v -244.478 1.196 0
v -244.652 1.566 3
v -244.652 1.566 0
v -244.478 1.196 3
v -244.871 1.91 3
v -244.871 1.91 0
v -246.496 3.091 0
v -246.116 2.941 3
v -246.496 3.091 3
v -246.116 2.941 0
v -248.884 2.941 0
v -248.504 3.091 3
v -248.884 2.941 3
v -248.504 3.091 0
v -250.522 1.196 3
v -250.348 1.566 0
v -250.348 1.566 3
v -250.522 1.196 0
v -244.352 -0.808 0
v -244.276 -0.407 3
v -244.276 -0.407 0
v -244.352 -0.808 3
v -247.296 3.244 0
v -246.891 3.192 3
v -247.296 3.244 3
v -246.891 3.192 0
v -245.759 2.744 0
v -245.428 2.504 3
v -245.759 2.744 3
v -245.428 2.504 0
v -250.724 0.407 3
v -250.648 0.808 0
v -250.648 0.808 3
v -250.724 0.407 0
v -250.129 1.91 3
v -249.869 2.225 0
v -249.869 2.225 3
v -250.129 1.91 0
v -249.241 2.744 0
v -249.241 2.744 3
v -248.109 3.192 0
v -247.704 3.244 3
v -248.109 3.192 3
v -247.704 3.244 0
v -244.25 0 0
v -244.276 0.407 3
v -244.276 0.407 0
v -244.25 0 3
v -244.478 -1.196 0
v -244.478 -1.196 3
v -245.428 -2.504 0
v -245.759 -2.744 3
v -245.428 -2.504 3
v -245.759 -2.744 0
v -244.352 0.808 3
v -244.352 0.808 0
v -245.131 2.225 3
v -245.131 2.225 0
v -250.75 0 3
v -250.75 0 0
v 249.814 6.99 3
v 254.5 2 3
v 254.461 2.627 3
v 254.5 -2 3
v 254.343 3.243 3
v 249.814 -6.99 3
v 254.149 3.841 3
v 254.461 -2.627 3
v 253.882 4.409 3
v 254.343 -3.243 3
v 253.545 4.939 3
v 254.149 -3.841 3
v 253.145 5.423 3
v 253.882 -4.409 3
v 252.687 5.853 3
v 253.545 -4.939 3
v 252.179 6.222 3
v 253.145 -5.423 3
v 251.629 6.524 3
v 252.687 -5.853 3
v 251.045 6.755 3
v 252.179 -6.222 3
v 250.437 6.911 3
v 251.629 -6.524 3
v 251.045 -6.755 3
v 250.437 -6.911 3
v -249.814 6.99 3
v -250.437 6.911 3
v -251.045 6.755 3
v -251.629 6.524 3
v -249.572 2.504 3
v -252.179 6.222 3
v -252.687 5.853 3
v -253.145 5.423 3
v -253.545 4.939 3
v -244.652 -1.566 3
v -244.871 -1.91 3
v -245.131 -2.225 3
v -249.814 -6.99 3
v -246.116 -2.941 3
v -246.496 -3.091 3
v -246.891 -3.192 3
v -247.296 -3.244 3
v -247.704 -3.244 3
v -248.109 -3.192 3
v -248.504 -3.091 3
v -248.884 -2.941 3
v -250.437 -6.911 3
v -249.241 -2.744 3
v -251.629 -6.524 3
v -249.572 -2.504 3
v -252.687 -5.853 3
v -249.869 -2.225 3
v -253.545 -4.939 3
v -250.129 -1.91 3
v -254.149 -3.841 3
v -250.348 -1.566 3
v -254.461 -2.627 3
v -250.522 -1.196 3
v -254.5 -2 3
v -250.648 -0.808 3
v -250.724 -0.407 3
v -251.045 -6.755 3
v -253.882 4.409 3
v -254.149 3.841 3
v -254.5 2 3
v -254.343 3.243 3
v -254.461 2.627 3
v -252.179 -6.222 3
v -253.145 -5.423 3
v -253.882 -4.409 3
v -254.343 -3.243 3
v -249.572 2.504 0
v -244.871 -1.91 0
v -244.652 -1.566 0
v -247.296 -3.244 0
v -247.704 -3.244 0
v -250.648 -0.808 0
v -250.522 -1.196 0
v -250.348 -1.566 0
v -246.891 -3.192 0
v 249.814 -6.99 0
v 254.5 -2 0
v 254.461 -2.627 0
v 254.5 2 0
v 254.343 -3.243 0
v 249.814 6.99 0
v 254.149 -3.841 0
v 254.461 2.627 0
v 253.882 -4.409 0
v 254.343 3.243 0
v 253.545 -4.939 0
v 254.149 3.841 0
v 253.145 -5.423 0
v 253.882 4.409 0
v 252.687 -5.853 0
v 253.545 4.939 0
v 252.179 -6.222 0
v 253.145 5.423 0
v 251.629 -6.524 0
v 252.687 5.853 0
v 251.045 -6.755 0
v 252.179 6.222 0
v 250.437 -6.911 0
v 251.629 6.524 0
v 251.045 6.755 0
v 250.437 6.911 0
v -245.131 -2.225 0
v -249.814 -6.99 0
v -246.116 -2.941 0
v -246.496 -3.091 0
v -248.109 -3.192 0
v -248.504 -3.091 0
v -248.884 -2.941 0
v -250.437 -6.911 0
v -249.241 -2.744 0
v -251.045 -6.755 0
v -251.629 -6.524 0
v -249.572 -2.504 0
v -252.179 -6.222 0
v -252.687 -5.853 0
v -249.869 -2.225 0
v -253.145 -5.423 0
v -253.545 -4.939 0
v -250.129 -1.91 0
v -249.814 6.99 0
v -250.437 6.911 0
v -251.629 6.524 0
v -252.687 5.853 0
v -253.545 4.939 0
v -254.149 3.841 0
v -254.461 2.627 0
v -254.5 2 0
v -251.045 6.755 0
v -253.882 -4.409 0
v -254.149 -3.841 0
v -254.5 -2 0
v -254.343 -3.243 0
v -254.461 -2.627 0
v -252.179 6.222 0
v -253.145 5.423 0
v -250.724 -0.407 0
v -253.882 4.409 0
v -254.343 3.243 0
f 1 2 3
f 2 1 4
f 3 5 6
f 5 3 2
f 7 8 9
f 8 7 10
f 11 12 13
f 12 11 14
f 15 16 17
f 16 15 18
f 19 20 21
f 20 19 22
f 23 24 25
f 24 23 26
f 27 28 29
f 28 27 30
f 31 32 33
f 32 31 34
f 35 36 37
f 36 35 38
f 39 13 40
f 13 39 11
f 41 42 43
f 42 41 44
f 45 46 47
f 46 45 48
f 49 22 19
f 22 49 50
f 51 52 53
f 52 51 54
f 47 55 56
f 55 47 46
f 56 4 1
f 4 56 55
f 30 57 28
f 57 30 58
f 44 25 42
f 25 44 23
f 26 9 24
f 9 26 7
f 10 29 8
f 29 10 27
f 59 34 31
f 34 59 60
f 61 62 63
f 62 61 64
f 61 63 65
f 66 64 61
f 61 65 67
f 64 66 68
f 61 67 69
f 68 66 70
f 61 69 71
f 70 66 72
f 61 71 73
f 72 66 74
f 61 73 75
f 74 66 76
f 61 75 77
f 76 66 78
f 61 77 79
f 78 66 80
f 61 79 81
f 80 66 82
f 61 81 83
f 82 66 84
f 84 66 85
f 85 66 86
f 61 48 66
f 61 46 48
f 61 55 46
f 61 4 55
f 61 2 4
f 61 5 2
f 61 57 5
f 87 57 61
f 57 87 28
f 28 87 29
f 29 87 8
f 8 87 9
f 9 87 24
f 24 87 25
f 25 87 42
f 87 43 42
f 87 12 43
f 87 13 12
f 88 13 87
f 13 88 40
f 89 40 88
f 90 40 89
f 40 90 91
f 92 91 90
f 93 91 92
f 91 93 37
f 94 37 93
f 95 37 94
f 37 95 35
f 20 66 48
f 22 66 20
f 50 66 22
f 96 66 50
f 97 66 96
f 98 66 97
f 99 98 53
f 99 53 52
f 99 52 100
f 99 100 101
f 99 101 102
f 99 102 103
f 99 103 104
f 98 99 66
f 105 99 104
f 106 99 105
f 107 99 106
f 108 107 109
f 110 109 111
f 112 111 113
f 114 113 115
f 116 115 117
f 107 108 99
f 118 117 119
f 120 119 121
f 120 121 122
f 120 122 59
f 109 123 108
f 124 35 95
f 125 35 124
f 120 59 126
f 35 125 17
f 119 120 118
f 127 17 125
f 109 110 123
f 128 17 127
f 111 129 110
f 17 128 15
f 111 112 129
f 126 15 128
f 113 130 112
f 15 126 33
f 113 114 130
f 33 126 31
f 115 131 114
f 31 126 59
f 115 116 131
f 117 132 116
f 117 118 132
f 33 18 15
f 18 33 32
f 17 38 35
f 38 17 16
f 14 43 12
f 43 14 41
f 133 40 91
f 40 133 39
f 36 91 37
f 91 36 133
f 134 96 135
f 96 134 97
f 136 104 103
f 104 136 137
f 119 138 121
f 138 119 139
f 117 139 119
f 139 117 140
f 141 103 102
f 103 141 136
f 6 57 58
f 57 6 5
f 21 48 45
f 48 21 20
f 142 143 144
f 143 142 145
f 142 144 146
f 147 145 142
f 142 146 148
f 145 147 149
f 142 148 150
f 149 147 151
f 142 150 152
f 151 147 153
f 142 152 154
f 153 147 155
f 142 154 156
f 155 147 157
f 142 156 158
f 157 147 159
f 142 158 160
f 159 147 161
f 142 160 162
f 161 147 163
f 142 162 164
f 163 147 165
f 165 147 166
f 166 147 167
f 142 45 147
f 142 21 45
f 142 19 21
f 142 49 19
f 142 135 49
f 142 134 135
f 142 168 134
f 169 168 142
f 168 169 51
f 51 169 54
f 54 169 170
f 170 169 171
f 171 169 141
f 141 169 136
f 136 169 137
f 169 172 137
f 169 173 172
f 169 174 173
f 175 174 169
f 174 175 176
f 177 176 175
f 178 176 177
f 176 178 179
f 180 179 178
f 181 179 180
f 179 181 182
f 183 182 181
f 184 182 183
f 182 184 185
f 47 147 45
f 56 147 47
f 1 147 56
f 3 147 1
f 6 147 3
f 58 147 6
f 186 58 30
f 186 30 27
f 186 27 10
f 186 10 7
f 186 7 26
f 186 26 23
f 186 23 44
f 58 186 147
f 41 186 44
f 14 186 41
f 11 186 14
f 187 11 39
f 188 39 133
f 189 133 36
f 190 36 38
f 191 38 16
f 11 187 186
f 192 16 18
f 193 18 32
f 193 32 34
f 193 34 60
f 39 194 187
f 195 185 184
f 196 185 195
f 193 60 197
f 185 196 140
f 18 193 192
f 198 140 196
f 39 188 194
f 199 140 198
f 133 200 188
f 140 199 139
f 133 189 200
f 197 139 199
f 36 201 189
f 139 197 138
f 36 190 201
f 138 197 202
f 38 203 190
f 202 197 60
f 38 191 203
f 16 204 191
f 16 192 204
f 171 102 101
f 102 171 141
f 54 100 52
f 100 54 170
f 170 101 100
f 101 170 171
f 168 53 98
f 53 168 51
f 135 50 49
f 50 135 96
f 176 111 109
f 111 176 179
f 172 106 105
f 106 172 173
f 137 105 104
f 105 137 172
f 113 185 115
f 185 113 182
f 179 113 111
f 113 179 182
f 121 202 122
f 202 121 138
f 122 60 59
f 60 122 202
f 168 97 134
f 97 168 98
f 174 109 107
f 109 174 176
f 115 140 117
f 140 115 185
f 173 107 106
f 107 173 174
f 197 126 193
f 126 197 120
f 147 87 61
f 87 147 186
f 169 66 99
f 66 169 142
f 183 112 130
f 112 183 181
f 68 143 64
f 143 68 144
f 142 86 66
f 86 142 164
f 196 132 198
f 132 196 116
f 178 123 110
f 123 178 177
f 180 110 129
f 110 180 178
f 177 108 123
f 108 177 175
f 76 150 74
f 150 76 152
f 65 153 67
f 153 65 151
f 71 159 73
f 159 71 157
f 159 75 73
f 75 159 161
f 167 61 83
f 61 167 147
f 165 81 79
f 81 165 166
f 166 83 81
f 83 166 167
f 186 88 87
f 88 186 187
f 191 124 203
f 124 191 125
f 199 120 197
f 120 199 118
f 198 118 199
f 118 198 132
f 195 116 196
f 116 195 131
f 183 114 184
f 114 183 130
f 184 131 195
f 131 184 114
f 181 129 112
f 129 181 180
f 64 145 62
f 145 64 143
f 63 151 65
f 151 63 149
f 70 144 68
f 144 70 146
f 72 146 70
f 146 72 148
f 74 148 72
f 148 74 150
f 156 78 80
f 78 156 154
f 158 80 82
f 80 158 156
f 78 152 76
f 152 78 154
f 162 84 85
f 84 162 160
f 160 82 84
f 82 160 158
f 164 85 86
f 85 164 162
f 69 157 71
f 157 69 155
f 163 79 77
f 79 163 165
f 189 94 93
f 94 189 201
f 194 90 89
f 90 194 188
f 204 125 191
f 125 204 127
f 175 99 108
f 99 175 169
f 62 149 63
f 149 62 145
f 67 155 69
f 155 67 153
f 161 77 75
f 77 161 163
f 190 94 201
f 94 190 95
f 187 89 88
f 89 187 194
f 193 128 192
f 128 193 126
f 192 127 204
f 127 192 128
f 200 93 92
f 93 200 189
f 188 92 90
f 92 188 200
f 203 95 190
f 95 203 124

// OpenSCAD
$fn = 50;


difference() {
	union() {
		hull() {
			translate(v = [-249.5000000000, 2.0000000000, 0]) {
				cylinder(h = 3, r = 5);
			}
			translate(v = [249.5000000000, 2.0000000000, 0]) {
				cylinder(h = 3, r = 5);
			}
			translate(v = [-249.5000000000, -2.0000000000, 0]) {
				cylinder(h = 3, r = 5);
			}
			translate(v = [249.5000000000, -2.0000000000, 0]) {
				cylinder(h = 3, r = 5);
			}
		}
	}
	union() {
		translate(v = [-247.5000000000, 0.0000000000, 0]) {
			cylinder(h = 3, r = 3.2500000000);
		}
		translate(v = [-247.5000000000, 0.0000000000, 0]) {
			cylinder(h = 3, r = 1.8000000000);
		}
		translate(v = [-247.5000000000, 0.0000000000, 0]) {
			cylinder(h = 3, r = 1.8000000000);
		}
		translate(v = [-247.5000000000, 0.0000000000, 0]) {
			cylinder(h = 3, r = 1.8000000000);
		}
	}
}
